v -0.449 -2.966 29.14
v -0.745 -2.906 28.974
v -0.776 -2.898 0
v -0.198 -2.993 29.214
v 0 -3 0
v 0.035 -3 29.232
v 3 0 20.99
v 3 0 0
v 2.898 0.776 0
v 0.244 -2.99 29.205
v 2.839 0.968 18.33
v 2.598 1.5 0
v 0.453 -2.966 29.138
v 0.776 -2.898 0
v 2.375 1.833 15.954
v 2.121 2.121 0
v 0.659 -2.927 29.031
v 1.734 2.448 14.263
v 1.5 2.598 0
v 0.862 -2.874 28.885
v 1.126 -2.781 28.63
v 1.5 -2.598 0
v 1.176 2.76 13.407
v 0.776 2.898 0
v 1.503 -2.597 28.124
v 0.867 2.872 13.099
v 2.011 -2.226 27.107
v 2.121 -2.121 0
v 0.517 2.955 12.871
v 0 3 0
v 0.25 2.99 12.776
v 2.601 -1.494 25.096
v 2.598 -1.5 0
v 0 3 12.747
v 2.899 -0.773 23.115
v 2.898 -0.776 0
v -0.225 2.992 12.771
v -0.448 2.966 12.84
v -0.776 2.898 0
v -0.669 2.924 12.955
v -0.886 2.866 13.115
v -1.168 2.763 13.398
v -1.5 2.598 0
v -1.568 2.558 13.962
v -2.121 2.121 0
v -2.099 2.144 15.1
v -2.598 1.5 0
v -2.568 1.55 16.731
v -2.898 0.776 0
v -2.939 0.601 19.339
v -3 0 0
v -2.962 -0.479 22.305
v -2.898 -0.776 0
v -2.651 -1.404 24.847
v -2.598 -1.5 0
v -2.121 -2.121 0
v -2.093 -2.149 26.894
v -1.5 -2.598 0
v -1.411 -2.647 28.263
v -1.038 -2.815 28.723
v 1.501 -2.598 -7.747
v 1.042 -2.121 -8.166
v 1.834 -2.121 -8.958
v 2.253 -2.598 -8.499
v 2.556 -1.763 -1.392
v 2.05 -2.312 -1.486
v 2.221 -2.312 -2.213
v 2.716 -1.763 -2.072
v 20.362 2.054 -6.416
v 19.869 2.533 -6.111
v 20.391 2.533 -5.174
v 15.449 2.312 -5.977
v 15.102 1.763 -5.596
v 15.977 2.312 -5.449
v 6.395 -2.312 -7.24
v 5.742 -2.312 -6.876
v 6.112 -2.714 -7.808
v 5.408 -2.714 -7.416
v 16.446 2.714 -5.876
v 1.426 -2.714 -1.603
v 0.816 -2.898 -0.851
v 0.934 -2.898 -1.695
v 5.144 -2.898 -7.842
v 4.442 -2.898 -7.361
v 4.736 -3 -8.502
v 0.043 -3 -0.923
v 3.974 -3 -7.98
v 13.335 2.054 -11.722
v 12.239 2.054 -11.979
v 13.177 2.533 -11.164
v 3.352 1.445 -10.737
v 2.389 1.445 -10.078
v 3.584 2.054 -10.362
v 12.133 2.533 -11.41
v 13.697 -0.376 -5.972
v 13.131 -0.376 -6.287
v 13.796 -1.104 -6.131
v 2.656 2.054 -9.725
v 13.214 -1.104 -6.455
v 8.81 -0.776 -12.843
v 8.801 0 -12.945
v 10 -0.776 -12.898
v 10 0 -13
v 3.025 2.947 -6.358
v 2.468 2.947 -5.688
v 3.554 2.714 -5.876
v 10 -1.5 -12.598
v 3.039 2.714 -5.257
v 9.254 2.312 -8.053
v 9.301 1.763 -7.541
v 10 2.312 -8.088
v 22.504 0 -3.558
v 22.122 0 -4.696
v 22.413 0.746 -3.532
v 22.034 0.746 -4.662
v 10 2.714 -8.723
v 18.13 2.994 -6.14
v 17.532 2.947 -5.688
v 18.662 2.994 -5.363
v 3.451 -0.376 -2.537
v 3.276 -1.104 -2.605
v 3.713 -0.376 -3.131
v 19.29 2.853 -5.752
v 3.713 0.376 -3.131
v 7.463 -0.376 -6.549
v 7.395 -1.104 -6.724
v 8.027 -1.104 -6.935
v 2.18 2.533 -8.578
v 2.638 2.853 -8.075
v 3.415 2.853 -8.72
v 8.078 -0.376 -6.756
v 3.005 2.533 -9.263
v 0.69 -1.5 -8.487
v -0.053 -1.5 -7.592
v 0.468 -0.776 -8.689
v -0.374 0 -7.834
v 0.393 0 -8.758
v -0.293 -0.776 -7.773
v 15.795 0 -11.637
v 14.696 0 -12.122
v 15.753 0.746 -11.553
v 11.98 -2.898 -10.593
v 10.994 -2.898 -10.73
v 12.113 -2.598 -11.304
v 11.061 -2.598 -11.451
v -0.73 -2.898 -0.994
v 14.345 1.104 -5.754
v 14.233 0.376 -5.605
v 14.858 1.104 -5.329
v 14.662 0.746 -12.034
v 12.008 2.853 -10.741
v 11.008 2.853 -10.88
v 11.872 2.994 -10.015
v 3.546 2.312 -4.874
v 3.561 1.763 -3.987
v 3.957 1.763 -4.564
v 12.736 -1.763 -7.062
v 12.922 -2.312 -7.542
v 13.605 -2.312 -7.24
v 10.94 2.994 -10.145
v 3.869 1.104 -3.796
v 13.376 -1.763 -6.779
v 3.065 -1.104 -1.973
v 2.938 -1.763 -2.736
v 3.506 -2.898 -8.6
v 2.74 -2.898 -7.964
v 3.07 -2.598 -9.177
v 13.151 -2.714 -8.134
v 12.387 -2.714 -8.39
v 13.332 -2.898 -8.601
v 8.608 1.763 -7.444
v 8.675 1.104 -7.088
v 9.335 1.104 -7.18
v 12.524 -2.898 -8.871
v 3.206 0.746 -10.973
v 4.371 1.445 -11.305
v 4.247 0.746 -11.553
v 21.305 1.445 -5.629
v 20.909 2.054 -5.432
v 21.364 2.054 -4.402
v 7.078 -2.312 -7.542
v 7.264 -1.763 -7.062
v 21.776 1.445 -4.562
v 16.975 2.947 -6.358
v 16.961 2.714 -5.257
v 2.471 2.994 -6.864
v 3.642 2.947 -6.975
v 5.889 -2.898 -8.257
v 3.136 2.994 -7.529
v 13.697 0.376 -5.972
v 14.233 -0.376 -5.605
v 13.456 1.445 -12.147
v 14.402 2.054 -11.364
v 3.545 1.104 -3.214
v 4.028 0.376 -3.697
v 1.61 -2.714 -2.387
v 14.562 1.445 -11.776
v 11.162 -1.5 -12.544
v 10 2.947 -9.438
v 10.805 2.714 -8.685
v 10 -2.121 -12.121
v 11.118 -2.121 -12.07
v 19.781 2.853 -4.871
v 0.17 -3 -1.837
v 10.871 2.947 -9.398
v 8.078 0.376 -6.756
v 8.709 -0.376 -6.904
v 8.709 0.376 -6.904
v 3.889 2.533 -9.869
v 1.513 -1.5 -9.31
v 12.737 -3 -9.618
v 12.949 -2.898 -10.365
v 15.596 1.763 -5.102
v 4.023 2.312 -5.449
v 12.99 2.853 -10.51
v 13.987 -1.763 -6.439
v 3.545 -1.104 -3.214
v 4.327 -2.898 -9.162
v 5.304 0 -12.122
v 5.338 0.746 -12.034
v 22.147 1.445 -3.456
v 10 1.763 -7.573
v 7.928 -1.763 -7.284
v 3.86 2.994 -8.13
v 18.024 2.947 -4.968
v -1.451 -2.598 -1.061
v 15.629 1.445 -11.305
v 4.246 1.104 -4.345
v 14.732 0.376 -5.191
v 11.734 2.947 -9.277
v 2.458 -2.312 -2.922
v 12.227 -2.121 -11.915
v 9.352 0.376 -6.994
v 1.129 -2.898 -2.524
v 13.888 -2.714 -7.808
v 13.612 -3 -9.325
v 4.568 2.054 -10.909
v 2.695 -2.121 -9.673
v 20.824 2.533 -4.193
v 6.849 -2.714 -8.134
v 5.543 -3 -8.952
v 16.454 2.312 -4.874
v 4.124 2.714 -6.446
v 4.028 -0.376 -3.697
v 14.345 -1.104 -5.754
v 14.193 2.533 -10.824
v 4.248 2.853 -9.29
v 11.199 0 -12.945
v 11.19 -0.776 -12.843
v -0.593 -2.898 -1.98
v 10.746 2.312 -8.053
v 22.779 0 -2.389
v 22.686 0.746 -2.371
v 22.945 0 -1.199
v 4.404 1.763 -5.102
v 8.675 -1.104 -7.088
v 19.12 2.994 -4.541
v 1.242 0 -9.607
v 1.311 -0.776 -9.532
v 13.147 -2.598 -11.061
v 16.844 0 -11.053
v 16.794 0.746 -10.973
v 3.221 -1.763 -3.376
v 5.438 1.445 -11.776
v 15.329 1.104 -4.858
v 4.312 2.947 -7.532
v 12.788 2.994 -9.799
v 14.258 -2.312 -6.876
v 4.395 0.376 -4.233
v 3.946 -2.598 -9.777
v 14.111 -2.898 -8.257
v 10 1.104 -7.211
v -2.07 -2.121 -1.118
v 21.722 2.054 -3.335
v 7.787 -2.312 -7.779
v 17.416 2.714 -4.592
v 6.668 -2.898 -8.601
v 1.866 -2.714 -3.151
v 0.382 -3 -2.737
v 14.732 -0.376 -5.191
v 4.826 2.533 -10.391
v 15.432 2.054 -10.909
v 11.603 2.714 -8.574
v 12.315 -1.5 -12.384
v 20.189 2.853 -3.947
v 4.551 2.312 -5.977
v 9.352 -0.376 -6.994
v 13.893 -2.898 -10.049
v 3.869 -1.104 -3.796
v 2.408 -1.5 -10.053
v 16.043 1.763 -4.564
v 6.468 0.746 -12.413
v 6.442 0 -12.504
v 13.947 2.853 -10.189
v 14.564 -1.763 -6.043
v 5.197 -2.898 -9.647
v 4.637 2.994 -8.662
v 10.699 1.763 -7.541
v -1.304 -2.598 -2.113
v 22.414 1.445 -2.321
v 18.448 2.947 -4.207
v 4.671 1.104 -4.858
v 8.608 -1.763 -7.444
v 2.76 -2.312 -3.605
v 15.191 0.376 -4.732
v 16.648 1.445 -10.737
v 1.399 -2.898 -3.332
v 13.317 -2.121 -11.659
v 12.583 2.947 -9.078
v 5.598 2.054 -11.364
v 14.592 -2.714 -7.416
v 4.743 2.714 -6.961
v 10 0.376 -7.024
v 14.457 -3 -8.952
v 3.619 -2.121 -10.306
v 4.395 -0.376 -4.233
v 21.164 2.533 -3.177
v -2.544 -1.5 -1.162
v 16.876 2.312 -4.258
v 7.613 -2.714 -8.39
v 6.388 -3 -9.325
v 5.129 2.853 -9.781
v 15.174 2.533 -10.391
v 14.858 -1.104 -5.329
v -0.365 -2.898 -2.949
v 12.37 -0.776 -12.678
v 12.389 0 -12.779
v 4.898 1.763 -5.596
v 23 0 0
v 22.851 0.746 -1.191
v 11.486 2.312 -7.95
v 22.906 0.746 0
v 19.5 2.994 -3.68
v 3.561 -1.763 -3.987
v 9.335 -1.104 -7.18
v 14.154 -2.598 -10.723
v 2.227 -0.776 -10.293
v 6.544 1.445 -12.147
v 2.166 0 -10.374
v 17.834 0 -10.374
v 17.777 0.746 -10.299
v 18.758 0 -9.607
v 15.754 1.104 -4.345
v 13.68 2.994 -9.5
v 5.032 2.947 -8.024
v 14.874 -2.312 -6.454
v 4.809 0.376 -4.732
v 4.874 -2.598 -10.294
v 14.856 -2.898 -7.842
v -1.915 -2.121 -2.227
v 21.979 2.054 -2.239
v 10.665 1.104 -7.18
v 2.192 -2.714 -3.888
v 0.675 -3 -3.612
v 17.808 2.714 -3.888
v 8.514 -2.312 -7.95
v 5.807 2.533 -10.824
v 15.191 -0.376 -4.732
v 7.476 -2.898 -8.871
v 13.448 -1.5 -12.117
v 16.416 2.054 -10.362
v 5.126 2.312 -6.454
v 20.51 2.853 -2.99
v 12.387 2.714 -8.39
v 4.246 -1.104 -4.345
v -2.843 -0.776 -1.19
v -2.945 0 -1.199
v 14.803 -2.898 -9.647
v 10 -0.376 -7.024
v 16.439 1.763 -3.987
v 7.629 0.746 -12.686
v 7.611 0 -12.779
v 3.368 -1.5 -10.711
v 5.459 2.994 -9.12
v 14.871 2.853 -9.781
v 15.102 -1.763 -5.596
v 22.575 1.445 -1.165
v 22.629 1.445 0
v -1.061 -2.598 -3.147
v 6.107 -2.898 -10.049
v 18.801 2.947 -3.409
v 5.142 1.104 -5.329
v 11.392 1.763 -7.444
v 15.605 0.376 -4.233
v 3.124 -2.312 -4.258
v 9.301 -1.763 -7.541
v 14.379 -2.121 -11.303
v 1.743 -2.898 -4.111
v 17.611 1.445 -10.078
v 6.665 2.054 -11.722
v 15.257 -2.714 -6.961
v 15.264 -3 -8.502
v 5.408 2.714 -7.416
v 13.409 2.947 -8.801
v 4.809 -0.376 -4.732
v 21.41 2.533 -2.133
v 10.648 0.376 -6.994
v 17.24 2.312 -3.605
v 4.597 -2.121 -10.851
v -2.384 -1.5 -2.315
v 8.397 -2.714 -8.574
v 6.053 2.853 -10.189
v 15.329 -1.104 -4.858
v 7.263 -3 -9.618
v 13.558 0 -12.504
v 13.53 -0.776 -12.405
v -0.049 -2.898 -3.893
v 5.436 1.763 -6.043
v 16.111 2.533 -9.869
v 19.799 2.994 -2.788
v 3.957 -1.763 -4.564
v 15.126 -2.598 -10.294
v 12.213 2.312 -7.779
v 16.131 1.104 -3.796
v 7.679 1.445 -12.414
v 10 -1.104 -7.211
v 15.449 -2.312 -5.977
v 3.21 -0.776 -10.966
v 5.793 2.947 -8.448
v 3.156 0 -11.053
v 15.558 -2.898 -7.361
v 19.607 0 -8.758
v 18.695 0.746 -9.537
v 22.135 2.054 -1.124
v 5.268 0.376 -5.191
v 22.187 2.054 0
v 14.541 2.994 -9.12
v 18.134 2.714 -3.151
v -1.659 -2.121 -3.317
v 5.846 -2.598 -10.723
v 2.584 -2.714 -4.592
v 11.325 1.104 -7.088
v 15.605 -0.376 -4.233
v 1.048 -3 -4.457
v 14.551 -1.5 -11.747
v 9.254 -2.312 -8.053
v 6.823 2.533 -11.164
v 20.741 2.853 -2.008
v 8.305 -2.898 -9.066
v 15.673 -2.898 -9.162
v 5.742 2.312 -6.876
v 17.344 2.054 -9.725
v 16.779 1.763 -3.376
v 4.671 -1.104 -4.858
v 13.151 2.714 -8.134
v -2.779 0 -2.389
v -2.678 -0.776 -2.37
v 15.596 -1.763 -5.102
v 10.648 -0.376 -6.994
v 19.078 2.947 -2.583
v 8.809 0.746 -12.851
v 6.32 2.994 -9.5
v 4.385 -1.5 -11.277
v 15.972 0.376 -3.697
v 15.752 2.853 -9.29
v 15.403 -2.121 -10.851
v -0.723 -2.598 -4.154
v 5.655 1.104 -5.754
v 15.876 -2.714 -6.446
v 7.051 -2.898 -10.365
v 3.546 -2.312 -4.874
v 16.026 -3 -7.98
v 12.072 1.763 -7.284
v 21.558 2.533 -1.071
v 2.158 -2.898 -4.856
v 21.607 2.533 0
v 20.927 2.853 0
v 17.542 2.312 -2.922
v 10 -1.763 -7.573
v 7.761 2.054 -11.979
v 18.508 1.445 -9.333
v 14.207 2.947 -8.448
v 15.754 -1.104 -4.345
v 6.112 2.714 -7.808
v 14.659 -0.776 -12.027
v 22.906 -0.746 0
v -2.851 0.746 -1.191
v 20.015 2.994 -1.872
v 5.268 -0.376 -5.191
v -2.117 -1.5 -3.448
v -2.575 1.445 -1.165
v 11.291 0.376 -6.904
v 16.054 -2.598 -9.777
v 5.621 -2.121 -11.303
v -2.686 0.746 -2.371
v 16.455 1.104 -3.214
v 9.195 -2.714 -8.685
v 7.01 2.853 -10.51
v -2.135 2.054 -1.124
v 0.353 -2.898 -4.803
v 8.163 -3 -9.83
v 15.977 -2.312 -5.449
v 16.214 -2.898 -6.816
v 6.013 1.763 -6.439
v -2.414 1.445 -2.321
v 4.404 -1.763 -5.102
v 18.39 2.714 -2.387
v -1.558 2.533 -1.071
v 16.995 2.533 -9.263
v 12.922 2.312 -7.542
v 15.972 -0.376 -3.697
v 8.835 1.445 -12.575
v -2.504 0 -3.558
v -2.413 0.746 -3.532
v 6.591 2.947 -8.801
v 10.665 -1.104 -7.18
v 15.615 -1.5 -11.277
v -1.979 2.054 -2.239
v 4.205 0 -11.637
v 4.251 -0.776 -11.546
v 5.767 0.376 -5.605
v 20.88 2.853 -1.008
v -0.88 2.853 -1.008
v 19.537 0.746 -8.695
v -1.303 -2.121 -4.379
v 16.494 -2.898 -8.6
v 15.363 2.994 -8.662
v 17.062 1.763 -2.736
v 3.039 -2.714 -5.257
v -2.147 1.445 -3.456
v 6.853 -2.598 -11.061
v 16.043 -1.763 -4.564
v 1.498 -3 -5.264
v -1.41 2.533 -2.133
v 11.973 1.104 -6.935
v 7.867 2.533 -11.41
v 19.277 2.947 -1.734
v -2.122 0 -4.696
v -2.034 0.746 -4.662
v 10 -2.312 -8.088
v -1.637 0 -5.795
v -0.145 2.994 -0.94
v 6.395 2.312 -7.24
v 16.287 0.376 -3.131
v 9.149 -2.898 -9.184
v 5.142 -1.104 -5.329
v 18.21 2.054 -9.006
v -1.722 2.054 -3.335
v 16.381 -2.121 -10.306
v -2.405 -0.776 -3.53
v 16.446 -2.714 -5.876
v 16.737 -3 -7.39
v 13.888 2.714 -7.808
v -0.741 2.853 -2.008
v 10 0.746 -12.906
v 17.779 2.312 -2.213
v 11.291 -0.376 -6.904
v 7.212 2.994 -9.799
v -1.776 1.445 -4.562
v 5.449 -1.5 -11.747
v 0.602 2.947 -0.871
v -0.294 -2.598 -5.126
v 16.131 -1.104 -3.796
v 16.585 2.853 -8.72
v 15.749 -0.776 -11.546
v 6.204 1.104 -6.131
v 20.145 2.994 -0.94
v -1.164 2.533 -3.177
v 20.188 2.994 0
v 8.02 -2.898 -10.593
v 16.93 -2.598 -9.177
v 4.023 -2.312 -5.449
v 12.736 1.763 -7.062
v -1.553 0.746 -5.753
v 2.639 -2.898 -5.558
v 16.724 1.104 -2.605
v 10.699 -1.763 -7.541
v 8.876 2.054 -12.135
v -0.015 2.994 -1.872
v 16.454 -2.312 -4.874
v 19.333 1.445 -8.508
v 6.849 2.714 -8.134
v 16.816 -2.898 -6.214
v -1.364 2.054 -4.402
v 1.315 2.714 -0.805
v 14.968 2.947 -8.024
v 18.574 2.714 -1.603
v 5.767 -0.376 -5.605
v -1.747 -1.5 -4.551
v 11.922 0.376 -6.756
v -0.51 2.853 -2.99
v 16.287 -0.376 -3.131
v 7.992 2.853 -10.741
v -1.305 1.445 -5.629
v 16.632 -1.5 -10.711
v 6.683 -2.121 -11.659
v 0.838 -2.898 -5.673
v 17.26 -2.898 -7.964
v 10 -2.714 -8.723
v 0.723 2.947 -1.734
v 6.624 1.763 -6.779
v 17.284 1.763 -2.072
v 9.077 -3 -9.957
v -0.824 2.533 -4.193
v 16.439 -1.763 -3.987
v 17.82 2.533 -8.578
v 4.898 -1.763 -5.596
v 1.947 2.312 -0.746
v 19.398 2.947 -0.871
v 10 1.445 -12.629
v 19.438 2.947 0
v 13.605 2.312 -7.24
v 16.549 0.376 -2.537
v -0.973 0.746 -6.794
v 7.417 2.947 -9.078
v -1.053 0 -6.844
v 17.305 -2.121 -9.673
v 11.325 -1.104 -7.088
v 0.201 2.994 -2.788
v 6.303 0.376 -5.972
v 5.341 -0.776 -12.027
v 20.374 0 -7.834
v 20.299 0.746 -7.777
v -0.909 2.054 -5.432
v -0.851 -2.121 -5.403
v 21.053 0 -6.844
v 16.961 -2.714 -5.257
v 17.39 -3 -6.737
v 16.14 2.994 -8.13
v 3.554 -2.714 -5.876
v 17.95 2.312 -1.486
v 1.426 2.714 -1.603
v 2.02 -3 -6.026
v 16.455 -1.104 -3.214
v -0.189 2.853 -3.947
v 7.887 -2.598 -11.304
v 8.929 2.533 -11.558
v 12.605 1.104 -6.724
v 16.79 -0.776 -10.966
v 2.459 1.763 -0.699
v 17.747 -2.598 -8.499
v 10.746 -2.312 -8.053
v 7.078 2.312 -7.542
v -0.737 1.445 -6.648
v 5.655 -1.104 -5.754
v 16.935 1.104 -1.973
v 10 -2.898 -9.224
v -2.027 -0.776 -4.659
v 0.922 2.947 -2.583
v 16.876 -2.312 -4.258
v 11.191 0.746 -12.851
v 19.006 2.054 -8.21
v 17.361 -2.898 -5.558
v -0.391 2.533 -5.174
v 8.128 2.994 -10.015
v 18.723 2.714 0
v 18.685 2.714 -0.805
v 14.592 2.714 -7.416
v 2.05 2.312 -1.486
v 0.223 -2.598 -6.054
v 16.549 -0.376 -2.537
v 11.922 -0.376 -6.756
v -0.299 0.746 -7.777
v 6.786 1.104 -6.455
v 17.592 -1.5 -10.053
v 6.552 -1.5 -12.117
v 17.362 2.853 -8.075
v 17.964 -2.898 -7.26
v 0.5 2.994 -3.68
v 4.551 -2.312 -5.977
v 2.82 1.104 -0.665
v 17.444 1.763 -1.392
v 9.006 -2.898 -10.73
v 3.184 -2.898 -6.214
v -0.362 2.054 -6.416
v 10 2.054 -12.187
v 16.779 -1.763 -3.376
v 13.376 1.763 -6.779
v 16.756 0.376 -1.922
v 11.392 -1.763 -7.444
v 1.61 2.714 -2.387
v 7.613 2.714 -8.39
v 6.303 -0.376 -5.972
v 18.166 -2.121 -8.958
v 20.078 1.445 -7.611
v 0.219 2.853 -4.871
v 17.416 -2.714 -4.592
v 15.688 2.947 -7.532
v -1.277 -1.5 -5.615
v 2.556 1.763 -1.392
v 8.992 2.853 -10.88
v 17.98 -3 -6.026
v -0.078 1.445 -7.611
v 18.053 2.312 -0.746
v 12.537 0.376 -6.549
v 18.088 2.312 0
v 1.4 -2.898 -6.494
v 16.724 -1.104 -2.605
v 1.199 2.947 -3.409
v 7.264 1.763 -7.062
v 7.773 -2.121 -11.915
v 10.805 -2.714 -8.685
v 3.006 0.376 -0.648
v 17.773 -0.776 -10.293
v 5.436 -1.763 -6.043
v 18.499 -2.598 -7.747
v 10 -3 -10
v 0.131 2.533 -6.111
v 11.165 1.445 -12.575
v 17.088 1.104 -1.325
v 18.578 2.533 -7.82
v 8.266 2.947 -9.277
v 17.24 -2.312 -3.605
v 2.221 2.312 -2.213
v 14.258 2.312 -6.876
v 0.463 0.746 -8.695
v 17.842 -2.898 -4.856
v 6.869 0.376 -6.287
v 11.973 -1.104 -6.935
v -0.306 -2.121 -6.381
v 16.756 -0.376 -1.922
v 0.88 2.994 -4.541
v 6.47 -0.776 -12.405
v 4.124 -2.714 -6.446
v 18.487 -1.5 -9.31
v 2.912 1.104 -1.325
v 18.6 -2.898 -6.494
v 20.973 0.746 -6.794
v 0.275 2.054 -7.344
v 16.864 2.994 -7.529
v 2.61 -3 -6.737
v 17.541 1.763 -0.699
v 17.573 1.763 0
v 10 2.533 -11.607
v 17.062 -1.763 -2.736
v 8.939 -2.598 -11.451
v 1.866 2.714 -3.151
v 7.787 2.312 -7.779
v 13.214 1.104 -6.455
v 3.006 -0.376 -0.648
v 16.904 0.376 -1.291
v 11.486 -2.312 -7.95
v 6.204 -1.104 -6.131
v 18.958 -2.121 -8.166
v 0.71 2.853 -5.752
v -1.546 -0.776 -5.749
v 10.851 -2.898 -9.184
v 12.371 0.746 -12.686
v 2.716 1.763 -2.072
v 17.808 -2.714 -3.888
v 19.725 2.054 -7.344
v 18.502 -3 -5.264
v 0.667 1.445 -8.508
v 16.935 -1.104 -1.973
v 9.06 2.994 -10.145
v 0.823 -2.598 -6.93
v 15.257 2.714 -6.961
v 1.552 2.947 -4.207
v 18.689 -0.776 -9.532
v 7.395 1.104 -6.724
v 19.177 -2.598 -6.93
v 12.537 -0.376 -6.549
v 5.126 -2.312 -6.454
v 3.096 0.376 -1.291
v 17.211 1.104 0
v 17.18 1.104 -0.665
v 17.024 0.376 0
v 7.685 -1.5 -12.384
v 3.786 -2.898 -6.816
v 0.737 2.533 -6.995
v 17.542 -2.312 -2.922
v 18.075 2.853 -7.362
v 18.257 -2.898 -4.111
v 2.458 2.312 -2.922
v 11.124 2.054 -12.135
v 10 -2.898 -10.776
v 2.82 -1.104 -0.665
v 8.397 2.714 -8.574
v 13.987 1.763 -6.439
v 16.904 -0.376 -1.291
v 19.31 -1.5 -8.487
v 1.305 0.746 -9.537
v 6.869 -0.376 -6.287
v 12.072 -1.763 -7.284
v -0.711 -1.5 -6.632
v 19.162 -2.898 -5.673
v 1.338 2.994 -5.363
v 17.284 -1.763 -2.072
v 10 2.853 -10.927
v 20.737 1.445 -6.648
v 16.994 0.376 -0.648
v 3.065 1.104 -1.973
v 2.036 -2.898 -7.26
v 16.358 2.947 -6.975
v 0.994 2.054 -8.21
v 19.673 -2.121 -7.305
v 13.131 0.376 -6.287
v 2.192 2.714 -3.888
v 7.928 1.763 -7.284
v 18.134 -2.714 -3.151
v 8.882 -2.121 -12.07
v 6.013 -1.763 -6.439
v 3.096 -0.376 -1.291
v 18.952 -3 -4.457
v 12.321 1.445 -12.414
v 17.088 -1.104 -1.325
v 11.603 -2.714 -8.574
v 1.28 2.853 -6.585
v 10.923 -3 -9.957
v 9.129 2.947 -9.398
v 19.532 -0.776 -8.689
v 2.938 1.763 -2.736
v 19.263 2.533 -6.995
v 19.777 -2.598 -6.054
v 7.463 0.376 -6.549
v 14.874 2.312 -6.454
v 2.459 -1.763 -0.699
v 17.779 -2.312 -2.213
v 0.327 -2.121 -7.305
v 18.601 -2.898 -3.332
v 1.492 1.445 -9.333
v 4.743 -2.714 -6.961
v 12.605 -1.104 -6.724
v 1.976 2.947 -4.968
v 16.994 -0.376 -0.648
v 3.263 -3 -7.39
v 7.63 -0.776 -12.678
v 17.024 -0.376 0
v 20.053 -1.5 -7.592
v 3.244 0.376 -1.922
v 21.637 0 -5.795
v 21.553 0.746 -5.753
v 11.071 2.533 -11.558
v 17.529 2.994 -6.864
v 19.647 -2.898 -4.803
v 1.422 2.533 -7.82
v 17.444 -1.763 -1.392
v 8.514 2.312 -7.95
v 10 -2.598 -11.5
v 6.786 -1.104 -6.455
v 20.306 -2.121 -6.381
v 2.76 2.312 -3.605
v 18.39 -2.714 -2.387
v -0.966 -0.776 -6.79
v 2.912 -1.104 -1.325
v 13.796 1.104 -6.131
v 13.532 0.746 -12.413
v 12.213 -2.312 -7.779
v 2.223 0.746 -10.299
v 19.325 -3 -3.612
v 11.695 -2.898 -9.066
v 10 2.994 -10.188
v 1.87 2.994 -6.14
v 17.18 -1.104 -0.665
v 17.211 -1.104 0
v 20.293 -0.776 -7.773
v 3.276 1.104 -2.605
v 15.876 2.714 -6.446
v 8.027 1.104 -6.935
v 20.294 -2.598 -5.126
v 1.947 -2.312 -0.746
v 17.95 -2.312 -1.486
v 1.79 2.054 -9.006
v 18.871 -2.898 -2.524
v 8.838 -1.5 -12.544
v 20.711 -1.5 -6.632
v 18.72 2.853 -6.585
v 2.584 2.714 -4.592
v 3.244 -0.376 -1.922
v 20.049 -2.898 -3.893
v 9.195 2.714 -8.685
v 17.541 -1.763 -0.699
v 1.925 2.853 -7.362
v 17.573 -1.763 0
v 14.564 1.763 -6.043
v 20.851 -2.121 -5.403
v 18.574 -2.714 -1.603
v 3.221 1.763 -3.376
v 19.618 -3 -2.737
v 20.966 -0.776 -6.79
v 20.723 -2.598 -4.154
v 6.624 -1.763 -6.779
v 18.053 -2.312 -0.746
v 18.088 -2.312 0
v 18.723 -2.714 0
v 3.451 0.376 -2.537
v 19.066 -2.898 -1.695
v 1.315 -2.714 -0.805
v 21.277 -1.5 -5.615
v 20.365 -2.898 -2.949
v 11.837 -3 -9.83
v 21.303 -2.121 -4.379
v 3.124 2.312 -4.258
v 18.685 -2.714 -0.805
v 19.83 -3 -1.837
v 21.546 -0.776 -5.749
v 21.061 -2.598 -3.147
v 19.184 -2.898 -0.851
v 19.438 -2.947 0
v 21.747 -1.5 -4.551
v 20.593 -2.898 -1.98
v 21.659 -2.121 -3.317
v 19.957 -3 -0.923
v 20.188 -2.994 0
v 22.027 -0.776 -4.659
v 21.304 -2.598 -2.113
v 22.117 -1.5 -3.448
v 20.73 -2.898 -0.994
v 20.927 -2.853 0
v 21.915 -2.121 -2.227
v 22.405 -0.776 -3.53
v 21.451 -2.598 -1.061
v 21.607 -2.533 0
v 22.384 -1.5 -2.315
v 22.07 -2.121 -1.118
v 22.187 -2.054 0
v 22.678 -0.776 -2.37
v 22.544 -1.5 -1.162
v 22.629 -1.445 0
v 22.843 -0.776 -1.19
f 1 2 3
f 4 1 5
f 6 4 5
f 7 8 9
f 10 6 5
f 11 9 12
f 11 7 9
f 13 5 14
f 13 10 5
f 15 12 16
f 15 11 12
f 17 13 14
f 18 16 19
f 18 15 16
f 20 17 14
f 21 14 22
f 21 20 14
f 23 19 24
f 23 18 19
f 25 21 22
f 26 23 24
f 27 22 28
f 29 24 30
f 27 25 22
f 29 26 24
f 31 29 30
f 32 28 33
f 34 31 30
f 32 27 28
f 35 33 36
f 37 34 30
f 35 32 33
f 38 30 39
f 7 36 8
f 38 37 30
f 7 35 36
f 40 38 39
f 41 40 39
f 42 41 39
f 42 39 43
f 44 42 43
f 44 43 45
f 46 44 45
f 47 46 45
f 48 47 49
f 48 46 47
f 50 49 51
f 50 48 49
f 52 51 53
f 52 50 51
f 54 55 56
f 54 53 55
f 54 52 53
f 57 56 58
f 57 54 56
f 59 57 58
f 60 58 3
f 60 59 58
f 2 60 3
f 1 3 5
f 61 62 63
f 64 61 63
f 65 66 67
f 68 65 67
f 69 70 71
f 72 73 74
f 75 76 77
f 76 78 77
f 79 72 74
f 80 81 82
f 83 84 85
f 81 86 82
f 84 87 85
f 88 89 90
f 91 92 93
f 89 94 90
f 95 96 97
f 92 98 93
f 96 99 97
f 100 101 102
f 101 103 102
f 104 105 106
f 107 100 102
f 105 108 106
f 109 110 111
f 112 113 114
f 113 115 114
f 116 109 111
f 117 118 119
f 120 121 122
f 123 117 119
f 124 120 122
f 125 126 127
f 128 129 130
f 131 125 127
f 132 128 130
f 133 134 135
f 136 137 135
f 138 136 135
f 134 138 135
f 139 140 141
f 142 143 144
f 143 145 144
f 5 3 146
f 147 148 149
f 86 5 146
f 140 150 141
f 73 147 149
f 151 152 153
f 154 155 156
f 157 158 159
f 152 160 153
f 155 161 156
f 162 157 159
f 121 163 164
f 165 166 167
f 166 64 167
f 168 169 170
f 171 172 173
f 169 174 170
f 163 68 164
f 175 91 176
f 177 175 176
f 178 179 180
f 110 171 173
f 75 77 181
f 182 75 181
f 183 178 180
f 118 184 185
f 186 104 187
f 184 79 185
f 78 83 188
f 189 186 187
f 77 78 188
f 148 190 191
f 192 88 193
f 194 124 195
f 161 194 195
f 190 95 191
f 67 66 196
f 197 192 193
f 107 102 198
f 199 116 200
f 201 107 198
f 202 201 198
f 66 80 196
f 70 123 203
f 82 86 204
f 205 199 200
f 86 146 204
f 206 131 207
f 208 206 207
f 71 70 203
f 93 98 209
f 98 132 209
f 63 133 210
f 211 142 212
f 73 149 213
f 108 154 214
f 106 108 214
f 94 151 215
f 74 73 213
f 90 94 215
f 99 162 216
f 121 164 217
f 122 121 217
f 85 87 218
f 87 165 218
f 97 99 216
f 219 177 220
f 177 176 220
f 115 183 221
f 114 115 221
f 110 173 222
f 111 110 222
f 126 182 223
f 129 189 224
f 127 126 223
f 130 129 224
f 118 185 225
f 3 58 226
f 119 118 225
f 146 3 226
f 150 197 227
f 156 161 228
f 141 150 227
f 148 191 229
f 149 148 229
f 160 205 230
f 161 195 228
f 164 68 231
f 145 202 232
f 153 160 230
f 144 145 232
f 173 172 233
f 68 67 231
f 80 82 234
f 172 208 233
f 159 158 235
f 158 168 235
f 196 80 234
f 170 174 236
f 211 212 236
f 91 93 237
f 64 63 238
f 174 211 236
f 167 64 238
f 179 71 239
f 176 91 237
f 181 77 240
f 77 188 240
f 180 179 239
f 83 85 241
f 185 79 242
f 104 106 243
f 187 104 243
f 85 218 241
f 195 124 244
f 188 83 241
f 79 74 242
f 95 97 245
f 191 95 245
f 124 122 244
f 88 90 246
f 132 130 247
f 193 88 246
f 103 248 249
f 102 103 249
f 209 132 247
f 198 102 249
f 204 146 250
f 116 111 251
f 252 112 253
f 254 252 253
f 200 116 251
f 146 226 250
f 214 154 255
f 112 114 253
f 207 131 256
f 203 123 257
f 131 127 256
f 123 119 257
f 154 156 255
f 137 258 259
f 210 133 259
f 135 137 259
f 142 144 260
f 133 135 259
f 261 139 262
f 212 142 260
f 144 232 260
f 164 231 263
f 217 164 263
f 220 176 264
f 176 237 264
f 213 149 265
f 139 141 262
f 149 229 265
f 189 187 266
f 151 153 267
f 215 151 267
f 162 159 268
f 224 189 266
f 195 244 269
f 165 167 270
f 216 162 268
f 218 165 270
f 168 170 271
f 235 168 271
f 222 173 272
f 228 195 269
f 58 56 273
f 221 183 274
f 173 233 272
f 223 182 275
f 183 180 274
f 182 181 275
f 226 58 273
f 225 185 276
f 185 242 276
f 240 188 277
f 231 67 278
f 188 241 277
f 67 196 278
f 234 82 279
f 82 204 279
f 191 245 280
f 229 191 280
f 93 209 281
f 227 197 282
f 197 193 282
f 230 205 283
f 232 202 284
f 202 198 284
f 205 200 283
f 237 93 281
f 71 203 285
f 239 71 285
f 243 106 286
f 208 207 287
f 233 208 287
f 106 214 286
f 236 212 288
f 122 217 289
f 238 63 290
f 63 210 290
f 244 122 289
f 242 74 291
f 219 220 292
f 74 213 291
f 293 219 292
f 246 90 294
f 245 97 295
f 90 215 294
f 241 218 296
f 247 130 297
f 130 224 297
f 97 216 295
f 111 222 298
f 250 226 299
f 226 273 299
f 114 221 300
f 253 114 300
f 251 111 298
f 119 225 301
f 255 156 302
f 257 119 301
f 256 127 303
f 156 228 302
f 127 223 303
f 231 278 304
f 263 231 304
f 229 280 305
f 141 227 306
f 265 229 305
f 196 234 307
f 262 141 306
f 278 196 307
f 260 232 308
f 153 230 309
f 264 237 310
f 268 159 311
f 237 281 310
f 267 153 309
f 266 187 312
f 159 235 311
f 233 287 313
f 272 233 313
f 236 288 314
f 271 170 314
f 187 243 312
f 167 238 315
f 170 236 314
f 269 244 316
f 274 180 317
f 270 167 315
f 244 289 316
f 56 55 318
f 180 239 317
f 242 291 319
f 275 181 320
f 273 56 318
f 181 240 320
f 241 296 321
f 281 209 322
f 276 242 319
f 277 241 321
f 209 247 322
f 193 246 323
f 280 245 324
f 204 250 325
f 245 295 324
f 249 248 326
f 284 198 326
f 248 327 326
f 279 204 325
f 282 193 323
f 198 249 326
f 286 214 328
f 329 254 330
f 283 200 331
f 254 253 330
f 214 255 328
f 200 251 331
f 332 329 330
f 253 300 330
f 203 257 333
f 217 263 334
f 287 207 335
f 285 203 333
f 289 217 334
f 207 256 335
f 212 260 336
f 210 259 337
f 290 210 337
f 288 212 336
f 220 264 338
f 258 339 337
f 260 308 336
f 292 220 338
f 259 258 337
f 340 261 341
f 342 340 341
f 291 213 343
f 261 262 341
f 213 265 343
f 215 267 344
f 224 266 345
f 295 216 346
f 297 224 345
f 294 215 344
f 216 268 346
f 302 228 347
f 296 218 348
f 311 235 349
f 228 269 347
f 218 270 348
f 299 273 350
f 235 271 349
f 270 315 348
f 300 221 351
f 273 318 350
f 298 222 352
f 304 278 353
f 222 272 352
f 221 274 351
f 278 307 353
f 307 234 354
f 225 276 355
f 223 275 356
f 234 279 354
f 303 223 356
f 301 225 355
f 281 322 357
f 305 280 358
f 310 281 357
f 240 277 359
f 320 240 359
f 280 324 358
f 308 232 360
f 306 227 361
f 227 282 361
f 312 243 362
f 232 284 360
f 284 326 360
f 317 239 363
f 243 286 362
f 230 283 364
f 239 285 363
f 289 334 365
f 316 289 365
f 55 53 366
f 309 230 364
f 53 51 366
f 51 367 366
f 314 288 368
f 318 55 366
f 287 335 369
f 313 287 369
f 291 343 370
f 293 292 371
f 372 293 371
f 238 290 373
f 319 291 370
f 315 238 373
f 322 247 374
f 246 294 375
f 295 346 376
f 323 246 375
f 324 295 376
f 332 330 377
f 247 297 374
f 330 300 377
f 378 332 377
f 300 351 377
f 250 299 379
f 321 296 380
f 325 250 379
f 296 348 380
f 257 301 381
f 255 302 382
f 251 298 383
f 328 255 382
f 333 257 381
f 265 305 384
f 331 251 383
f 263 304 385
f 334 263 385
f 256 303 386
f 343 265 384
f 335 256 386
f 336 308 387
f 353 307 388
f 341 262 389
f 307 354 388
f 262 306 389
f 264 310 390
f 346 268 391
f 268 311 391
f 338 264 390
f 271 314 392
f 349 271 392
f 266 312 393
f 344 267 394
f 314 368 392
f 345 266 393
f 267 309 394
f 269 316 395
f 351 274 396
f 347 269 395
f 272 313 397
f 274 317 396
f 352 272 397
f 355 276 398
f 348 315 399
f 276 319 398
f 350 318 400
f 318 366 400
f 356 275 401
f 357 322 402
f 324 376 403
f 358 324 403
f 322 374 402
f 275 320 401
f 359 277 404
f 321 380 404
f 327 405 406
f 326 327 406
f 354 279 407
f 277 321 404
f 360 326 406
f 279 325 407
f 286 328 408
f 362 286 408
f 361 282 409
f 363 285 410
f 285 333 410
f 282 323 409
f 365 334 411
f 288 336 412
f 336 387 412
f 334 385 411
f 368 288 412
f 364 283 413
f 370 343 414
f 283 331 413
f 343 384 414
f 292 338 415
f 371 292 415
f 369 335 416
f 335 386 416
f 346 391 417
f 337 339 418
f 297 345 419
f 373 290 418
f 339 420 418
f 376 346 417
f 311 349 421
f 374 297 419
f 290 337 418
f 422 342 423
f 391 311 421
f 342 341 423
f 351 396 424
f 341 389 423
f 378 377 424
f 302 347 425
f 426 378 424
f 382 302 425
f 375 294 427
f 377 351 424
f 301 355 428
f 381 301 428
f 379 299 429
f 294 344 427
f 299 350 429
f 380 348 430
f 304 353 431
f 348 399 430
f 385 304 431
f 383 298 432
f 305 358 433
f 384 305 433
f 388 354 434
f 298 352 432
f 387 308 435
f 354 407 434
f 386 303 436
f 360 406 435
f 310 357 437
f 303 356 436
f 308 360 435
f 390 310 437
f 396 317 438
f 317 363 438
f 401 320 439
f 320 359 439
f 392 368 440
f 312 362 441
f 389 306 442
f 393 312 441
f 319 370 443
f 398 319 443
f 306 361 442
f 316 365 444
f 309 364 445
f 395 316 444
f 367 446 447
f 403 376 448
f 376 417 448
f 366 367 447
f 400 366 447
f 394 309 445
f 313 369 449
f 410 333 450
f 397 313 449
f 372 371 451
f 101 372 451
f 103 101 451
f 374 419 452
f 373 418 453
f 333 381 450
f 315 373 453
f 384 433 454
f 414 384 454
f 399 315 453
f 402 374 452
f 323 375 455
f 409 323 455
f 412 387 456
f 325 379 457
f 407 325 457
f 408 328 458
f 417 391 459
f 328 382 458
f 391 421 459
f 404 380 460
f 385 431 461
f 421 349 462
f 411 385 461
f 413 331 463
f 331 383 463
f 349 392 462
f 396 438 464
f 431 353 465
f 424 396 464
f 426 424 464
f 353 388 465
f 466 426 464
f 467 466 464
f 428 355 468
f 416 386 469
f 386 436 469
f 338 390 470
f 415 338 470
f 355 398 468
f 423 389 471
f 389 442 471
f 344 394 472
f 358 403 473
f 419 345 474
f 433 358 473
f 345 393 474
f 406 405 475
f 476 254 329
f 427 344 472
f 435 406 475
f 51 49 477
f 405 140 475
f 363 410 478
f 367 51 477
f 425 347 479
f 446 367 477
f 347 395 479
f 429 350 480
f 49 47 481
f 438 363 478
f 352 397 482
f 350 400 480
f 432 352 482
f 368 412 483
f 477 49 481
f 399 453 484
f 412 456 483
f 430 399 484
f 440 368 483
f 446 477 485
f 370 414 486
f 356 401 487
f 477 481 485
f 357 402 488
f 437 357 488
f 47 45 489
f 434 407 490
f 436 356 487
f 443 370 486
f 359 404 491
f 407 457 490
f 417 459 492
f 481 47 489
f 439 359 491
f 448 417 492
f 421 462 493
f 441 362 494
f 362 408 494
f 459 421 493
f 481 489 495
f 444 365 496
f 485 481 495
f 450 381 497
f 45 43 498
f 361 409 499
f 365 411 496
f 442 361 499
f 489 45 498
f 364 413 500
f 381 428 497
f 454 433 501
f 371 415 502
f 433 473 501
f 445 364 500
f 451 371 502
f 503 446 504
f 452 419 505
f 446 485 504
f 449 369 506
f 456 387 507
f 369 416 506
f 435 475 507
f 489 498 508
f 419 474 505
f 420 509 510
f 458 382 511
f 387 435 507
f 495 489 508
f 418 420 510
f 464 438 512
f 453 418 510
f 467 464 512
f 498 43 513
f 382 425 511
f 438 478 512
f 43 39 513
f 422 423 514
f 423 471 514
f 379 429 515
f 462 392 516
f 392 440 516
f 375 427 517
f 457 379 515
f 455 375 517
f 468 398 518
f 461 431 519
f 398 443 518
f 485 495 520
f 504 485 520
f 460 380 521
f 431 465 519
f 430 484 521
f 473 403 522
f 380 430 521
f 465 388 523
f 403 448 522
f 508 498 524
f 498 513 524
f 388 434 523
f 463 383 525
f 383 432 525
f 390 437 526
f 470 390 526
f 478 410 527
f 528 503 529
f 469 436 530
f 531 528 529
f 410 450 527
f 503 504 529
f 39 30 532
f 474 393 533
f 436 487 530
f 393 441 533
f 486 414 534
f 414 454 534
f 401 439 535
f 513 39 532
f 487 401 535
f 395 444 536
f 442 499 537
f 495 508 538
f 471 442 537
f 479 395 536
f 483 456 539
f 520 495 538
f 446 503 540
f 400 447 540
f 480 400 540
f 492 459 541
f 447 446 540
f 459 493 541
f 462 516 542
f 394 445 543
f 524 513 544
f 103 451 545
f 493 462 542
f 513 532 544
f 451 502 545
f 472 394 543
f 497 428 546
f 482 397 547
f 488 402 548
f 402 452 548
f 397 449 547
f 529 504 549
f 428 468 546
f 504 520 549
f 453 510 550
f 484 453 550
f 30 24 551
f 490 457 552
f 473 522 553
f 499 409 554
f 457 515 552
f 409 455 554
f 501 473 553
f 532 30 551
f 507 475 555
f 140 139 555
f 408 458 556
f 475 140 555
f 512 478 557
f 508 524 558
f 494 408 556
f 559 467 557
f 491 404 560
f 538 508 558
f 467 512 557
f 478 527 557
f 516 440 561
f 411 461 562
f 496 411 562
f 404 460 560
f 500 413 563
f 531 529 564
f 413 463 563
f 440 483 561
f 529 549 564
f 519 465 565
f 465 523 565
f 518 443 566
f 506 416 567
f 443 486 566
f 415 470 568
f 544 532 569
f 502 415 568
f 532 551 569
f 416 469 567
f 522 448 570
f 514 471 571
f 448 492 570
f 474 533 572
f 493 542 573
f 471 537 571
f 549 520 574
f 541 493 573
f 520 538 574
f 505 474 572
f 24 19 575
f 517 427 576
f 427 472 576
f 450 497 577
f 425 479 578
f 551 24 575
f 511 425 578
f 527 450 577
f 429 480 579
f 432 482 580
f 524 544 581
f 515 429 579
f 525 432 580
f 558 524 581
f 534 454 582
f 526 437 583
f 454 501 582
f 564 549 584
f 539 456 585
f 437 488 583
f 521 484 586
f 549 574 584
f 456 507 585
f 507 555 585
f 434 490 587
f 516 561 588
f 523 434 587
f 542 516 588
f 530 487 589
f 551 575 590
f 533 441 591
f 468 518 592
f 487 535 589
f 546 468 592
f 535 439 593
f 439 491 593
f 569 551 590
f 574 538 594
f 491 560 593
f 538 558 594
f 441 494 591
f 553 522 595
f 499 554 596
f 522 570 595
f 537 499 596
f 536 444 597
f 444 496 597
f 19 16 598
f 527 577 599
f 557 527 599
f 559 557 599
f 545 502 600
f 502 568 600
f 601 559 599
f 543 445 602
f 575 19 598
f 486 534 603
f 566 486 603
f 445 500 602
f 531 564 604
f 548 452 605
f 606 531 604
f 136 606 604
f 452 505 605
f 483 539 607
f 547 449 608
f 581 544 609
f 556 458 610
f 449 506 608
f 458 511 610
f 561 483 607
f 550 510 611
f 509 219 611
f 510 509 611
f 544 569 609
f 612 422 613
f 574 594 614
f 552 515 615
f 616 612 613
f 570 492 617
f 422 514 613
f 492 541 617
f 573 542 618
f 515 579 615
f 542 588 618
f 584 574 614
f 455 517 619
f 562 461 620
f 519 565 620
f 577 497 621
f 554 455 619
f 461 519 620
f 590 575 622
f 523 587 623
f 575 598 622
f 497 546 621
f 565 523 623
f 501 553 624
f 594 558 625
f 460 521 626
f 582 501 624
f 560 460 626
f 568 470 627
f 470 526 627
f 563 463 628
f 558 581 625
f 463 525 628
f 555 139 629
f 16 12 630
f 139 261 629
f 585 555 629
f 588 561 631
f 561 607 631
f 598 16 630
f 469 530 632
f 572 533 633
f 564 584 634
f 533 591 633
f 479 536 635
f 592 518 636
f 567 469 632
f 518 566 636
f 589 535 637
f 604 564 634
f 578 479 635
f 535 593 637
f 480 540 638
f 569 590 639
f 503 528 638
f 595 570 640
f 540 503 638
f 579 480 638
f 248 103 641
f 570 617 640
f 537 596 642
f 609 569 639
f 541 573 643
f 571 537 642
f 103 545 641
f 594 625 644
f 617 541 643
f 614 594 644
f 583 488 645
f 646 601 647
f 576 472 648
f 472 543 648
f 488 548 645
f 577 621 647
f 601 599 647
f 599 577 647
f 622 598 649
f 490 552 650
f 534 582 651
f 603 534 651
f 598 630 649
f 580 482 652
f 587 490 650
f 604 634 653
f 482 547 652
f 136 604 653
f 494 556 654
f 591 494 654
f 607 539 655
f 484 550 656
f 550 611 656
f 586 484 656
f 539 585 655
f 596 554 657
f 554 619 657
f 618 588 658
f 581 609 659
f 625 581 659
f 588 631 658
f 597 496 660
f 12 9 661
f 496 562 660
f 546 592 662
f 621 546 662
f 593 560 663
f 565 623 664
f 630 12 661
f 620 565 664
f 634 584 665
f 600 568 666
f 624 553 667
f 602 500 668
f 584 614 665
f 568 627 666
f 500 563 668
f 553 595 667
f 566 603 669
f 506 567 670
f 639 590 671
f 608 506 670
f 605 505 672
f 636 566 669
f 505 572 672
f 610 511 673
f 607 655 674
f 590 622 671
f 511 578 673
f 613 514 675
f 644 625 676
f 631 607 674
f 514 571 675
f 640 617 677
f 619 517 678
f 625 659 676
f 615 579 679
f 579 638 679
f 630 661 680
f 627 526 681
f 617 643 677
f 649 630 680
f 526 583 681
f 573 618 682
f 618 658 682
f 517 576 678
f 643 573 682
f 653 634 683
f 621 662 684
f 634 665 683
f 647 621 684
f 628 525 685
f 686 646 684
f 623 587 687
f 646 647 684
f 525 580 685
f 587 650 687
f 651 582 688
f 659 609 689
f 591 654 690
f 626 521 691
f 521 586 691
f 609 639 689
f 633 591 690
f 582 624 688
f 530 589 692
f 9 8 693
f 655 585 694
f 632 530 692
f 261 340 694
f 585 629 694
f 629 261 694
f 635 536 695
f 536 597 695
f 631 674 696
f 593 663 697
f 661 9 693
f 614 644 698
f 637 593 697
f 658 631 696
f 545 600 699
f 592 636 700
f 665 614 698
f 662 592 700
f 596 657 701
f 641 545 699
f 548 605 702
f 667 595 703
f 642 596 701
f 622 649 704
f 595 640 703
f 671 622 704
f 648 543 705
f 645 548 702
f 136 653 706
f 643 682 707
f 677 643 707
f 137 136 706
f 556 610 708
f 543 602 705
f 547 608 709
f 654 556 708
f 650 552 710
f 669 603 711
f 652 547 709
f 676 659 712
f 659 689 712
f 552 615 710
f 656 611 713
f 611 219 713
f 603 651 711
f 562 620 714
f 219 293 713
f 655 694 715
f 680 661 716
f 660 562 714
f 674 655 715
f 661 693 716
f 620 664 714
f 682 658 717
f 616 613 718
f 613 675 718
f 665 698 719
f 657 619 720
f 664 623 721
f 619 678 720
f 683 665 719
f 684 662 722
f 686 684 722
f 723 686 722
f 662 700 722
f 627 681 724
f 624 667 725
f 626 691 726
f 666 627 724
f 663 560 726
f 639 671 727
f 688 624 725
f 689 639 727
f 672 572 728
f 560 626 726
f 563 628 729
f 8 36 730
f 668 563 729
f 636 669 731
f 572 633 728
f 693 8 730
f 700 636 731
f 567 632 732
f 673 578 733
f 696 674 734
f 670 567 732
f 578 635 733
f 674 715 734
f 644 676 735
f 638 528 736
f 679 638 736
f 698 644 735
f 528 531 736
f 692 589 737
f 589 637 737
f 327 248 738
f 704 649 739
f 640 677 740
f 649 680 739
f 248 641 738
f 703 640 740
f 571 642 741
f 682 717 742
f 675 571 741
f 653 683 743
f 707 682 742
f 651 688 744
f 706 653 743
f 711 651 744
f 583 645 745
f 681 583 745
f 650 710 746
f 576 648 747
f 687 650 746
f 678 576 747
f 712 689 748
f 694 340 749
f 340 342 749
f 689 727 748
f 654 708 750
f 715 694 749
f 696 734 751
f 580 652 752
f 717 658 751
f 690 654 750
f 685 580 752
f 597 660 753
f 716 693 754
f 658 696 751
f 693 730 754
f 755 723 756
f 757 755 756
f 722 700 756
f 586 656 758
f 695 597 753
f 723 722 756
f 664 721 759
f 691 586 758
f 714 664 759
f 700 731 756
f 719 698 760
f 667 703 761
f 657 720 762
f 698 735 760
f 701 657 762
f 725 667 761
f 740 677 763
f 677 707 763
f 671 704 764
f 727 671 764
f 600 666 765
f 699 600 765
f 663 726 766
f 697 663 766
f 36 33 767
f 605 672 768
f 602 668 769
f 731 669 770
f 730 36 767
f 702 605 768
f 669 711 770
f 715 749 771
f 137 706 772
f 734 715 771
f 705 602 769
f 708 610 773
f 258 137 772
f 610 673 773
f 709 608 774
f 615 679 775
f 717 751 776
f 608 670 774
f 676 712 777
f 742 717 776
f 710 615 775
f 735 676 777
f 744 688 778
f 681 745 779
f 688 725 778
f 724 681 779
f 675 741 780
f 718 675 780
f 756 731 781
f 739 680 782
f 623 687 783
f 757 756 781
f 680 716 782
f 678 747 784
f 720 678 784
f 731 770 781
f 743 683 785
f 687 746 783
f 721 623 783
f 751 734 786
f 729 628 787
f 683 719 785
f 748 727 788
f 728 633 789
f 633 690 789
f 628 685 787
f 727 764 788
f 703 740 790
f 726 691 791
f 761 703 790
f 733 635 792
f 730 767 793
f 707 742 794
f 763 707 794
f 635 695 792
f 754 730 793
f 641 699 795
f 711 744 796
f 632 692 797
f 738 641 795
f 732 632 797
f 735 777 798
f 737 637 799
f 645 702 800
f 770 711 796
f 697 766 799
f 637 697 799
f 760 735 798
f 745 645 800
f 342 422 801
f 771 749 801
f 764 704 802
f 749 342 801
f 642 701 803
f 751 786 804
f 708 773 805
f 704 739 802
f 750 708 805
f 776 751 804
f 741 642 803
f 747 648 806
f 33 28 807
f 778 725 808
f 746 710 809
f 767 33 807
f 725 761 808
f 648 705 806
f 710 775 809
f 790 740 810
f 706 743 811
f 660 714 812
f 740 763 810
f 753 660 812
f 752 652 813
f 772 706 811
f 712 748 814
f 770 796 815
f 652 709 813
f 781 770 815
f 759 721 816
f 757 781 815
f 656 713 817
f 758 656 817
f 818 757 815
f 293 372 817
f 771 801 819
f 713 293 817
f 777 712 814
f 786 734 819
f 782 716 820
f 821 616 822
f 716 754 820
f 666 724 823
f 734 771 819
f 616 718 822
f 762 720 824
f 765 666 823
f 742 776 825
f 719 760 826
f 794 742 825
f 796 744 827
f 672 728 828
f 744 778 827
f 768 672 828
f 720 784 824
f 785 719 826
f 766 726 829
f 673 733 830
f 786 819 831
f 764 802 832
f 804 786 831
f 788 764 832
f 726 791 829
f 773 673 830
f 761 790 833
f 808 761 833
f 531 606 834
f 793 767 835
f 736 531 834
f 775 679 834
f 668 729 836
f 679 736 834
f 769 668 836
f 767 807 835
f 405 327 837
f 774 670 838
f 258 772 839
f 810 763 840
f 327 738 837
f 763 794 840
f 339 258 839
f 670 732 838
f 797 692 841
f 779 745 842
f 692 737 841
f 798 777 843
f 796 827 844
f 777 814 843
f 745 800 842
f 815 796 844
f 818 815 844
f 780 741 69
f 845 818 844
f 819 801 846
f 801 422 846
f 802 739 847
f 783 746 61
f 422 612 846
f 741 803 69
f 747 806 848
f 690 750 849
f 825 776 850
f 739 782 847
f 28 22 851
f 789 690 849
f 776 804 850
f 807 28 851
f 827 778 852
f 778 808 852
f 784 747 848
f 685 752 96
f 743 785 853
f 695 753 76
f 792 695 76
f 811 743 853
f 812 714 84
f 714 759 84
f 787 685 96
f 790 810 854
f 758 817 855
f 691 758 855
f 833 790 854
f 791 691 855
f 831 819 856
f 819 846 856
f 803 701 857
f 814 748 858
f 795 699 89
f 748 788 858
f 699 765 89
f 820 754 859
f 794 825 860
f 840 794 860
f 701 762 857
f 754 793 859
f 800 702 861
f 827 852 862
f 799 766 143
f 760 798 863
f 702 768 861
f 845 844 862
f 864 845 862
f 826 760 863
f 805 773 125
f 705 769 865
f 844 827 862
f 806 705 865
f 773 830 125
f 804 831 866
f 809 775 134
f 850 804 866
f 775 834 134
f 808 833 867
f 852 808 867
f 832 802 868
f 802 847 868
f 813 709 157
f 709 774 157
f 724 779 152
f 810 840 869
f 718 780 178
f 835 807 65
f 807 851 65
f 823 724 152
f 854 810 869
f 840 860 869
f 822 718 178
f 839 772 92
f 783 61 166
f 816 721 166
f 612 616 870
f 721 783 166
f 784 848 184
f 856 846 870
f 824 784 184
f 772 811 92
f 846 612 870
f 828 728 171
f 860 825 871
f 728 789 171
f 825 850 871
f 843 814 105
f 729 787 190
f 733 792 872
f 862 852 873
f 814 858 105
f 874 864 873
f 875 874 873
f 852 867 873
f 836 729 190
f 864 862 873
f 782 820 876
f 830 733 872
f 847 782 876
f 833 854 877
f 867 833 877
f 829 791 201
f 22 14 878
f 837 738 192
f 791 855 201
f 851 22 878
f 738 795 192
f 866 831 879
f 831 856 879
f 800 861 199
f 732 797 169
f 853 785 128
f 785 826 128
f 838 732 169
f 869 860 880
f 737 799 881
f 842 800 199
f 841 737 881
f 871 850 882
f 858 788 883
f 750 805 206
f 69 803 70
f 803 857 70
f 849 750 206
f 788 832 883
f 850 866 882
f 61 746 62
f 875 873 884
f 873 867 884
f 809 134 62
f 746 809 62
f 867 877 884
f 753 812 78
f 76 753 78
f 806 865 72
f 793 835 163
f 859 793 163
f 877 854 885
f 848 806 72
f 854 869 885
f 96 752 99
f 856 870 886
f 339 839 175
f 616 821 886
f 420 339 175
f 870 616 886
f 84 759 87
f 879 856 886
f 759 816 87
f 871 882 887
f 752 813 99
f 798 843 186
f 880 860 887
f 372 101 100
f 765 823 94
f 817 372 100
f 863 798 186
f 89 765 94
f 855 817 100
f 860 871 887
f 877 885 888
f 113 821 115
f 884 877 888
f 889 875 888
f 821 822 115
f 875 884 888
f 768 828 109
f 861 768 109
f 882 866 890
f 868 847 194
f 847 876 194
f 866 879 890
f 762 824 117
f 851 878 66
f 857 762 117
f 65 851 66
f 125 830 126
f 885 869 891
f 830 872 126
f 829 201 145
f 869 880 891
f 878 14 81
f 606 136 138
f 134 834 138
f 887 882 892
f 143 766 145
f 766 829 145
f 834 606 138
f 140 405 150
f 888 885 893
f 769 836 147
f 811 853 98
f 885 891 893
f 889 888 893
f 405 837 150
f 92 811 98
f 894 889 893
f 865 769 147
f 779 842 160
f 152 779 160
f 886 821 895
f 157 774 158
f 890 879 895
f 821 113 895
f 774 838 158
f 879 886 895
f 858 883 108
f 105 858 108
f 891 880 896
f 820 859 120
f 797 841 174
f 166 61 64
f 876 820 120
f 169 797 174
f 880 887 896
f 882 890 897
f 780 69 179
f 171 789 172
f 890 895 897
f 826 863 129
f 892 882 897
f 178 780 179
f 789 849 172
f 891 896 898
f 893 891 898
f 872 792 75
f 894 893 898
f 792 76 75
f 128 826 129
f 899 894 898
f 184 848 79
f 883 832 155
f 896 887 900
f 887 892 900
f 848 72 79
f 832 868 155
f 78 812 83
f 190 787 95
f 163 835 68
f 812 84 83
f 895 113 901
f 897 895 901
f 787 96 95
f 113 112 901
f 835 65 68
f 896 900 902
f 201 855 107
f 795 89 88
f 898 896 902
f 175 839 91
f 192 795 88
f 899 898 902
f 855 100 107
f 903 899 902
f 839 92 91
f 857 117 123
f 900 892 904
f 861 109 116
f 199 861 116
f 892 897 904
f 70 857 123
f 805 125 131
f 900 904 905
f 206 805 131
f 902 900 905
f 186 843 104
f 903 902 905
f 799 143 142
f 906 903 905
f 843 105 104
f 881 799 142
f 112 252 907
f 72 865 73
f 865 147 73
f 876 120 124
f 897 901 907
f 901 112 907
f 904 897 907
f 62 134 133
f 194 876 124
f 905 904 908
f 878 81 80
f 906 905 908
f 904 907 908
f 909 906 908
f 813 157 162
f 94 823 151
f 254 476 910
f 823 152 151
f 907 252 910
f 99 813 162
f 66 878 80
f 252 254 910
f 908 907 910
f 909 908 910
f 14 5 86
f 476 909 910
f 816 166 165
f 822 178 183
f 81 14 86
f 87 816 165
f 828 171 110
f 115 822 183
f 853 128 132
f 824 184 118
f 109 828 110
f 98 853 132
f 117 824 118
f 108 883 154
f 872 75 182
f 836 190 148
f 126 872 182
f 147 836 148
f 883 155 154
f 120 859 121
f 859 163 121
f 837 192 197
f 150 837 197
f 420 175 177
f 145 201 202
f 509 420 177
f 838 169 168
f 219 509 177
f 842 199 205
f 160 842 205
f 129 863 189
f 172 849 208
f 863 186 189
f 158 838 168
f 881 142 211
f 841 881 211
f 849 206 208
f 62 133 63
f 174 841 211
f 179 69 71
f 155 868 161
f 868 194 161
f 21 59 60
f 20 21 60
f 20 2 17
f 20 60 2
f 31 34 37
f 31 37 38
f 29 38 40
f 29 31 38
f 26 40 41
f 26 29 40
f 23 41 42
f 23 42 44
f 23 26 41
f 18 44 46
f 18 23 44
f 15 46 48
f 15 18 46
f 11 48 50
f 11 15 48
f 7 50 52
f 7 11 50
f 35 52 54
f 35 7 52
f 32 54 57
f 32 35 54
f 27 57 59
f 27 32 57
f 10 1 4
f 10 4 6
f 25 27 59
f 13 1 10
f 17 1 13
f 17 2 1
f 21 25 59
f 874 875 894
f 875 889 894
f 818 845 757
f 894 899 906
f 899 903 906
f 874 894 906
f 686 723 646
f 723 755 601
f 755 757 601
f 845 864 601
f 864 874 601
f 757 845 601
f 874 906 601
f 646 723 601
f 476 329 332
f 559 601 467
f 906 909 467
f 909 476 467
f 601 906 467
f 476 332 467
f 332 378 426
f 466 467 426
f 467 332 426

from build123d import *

# Parameters (mm, degrees)
BOX_W                 = 12
BOX_H                 = 8
BOX_DEPTH             = 23
BOX_ROLL_ANGLE        = 20
TORUS_R               = 3
TORUS_ANGLE           = 180
TORUS_ROLL_ANGLE      = -90
TORUS_PLACEMENT_ANGLE = 180
CYLINDER_R            = 3
CYLINDER_DEPTH        = 30


with BuildPart() as pared:
    # Box → Box (new body)
    with BuildSketch(Plane.XY):
        with Locations((6, 4)):
            Rectangle(BOX_W, BOX_H)
    extrude(amount=BOX_DEPTH)


with BuildPart() as pared_1:
    # Box roll: moved
    add(pared.part.rotate(Axis((0, 0, 0), (1, 0, 0)), BOX_ROLL_ANGLE))


with BuildPart() as pared_2:
    # Box placement: moved
    add(pared_1.part.moved(Location((-6, 4, 10))))


with BuildPart() as torus:
    # Torus → Torus (revolve)
    with BuildSketch(Plane.XZ):
        with Locations((10, 0)):
            Circle(TORUS_R)
    revolve(axis=Axis((0, 0, 0), (0, 0, 1)), revolution_arc=TORUS_ANGLE)


with BuildPart() as torus_1:
    # Torus roll: moved
    add(torus.part.rotate(Axis((0, 0, 0), (1, 0, 0)), TORUS_ROLL_ANGLE))


with BuildPart() as torus_2:
    # Torus placement: moved
    add(torus_1.part.moved(Location((10, 0, 0))).rotate(Axis((10, 0, 0), (0, 0, 1)), TORUS_PLACEMENT_ANGLE))


with BuildPart() as cut:
    # Cylinder → Cylinder (new body)
    with BuildSketch(Plane.XY):
        Circle(CYLINDER_R)
    extrude(amount=CYLINDER_DEPTH)

    # Fusion: union Torus
    add(torus_2.part)

    # Cut: cut pared
    add(pared_2.part, mode=Mode.SUBTRACT)


solid = cut.part
